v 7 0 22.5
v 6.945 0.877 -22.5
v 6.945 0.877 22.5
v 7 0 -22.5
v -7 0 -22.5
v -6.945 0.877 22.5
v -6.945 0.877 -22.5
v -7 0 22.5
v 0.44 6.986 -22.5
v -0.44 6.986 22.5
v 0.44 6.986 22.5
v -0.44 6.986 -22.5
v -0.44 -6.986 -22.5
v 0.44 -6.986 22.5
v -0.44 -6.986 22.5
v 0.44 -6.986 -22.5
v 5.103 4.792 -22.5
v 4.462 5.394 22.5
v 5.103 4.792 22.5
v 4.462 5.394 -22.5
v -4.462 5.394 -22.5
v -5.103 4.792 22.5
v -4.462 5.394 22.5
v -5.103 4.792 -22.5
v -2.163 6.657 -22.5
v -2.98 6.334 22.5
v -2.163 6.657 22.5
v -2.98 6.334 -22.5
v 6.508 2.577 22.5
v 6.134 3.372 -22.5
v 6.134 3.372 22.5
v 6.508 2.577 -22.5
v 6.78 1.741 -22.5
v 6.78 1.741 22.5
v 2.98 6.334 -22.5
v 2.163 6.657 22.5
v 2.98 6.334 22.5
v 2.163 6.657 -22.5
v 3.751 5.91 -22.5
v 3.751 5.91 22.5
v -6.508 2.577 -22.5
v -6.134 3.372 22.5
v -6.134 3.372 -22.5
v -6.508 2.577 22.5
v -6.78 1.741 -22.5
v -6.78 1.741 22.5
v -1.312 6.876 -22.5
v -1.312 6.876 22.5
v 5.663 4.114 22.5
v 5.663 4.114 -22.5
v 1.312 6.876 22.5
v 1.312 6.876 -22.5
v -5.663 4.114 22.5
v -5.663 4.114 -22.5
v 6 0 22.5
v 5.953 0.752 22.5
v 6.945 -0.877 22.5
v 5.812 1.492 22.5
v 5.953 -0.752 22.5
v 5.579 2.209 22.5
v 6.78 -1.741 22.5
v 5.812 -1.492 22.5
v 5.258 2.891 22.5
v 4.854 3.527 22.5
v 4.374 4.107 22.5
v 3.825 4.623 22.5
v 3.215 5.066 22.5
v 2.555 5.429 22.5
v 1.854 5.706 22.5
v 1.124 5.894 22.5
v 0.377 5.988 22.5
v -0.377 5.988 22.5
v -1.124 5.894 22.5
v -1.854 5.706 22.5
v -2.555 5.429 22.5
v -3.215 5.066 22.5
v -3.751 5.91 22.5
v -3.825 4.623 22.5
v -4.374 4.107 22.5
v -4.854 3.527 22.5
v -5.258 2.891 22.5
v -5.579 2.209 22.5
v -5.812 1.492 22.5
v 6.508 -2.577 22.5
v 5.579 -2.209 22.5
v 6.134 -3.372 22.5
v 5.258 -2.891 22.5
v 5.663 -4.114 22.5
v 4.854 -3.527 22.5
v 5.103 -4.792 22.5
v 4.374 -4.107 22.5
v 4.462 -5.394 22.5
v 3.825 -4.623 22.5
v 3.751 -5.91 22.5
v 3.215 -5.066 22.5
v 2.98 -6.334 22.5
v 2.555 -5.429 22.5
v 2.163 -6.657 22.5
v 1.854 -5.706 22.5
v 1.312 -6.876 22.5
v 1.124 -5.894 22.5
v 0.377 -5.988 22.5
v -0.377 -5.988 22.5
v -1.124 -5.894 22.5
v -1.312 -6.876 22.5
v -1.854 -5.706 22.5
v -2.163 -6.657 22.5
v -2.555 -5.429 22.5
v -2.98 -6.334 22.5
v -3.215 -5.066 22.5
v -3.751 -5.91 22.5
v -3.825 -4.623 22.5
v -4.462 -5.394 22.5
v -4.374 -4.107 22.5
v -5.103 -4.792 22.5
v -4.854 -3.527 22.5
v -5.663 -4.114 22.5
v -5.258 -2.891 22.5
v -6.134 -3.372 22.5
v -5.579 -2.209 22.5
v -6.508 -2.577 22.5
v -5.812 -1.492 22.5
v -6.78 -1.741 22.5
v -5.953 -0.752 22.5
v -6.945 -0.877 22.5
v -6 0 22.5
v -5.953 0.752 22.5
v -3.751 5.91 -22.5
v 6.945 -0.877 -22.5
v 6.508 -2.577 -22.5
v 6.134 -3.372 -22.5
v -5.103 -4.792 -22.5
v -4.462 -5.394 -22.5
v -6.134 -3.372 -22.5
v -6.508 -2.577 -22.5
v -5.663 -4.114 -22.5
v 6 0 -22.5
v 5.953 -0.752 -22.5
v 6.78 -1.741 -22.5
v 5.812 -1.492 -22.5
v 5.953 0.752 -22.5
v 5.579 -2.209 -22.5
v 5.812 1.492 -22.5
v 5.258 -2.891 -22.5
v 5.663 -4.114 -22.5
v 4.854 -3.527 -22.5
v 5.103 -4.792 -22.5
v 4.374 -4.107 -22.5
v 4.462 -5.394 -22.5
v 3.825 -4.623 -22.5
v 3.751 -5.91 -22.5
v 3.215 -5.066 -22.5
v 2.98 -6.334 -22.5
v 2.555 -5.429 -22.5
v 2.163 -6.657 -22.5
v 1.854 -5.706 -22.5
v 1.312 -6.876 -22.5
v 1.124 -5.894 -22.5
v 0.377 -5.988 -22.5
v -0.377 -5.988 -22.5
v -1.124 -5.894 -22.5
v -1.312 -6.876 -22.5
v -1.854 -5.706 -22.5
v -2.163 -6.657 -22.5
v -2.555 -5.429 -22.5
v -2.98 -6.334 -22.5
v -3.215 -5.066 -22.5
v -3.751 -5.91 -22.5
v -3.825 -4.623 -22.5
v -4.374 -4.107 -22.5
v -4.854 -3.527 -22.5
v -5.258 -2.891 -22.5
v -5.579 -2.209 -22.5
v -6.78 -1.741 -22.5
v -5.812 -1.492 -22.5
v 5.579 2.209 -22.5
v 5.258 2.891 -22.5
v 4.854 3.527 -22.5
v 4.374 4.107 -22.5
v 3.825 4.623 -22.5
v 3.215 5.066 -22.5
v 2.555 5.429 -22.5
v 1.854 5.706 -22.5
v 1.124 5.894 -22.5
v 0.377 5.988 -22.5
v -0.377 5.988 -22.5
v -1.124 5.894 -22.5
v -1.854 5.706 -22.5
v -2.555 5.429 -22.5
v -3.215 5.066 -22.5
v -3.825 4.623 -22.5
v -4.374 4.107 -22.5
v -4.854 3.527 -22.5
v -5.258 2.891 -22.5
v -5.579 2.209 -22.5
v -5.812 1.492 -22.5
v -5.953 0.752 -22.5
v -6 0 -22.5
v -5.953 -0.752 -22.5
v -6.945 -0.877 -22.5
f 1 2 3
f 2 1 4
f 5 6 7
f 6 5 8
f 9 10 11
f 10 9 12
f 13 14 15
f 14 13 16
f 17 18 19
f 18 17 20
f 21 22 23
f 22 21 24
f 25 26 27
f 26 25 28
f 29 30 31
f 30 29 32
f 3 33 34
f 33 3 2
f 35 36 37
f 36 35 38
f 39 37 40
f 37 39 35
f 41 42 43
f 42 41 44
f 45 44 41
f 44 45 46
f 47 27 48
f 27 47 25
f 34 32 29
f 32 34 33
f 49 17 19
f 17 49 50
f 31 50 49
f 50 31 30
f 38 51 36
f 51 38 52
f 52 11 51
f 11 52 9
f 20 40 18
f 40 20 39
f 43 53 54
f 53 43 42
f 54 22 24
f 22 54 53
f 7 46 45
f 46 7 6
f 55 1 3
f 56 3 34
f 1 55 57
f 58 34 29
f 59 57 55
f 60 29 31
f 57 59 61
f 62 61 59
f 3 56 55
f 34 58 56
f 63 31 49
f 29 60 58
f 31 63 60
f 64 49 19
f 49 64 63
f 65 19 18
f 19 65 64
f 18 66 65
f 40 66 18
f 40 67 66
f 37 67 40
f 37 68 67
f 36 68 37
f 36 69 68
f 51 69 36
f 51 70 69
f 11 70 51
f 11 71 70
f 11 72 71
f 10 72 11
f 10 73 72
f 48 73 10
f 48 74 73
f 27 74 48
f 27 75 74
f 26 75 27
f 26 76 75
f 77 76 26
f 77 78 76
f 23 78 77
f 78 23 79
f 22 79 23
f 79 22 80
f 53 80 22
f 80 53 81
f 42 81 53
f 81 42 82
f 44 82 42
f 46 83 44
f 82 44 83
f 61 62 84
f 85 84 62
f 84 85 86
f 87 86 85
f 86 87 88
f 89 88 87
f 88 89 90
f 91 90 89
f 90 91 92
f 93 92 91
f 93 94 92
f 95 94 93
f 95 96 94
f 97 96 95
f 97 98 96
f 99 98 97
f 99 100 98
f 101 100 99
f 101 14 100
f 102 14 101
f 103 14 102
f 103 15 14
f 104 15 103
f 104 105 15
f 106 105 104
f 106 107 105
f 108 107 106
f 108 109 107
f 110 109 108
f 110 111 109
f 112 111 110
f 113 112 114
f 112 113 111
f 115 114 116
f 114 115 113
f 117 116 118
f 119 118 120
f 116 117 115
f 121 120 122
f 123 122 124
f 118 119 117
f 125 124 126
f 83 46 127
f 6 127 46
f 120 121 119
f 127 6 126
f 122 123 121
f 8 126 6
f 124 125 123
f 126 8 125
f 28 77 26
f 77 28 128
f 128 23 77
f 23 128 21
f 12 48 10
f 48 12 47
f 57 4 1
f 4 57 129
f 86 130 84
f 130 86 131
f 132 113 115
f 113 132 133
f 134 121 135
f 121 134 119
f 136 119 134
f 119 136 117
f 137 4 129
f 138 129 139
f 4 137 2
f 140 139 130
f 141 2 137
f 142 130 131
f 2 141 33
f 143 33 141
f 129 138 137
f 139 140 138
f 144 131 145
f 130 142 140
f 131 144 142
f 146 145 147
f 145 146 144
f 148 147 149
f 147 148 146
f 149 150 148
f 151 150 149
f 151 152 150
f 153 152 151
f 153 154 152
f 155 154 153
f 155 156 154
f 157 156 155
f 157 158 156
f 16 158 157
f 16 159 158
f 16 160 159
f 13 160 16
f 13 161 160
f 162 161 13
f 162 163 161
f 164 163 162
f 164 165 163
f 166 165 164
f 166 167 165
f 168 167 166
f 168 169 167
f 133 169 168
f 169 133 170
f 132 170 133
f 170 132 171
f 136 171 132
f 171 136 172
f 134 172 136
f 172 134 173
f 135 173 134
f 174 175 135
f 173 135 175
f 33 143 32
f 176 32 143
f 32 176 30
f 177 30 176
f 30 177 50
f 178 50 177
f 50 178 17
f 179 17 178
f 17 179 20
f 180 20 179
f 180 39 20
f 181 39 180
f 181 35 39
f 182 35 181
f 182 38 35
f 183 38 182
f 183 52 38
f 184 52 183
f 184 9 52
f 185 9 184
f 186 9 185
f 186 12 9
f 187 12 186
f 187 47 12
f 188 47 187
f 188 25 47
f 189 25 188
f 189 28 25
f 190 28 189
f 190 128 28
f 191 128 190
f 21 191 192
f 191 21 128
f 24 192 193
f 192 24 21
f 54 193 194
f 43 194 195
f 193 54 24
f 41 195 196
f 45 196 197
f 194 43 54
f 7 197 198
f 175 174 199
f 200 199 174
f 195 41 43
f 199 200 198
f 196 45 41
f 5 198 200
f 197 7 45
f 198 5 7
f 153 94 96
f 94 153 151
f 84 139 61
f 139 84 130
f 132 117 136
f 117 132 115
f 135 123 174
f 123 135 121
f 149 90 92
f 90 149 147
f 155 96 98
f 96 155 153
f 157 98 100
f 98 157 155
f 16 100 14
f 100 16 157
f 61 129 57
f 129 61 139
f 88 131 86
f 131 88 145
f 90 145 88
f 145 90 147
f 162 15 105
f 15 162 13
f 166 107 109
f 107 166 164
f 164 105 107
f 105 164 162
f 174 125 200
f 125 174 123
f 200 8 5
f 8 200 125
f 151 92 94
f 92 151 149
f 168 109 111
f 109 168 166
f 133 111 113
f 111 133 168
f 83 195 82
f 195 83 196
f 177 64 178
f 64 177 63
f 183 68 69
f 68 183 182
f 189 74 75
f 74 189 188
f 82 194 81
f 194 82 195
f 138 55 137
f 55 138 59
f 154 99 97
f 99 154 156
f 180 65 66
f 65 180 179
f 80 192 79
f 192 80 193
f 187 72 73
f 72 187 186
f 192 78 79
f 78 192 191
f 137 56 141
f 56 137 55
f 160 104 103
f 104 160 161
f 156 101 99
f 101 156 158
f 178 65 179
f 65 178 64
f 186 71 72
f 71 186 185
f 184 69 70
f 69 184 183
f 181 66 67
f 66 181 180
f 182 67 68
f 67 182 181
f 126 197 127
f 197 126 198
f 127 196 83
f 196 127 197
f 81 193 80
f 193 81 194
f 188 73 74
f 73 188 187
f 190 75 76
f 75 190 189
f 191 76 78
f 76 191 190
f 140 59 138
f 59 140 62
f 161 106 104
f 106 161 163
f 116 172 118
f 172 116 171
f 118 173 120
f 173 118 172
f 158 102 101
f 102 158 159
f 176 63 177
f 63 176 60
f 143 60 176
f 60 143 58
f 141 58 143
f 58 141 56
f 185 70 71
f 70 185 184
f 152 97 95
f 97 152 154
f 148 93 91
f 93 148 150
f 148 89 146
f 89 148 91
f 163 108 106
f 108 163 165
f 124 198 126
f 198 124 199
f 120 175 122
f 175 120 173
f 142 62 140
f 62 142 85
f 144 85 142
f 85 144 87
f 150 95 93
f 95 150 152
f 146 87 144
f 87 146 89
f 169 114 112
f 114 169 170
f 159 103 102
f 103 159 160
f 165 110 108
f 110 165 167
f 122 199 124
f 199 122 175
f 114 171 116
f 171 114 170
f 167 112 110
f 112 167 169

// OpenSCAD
$fn = 50;


difference() {
	union() {
		translate(v = [0, 0, -22.5000000000]) {
			cylinder(h = 45, r = 7.0000000000);
		}
	}
	union() {
		translate(v = [0, 0, -100.0000000000]) {
			cylinder(h = 200, r = 6);
		}
	}
}
